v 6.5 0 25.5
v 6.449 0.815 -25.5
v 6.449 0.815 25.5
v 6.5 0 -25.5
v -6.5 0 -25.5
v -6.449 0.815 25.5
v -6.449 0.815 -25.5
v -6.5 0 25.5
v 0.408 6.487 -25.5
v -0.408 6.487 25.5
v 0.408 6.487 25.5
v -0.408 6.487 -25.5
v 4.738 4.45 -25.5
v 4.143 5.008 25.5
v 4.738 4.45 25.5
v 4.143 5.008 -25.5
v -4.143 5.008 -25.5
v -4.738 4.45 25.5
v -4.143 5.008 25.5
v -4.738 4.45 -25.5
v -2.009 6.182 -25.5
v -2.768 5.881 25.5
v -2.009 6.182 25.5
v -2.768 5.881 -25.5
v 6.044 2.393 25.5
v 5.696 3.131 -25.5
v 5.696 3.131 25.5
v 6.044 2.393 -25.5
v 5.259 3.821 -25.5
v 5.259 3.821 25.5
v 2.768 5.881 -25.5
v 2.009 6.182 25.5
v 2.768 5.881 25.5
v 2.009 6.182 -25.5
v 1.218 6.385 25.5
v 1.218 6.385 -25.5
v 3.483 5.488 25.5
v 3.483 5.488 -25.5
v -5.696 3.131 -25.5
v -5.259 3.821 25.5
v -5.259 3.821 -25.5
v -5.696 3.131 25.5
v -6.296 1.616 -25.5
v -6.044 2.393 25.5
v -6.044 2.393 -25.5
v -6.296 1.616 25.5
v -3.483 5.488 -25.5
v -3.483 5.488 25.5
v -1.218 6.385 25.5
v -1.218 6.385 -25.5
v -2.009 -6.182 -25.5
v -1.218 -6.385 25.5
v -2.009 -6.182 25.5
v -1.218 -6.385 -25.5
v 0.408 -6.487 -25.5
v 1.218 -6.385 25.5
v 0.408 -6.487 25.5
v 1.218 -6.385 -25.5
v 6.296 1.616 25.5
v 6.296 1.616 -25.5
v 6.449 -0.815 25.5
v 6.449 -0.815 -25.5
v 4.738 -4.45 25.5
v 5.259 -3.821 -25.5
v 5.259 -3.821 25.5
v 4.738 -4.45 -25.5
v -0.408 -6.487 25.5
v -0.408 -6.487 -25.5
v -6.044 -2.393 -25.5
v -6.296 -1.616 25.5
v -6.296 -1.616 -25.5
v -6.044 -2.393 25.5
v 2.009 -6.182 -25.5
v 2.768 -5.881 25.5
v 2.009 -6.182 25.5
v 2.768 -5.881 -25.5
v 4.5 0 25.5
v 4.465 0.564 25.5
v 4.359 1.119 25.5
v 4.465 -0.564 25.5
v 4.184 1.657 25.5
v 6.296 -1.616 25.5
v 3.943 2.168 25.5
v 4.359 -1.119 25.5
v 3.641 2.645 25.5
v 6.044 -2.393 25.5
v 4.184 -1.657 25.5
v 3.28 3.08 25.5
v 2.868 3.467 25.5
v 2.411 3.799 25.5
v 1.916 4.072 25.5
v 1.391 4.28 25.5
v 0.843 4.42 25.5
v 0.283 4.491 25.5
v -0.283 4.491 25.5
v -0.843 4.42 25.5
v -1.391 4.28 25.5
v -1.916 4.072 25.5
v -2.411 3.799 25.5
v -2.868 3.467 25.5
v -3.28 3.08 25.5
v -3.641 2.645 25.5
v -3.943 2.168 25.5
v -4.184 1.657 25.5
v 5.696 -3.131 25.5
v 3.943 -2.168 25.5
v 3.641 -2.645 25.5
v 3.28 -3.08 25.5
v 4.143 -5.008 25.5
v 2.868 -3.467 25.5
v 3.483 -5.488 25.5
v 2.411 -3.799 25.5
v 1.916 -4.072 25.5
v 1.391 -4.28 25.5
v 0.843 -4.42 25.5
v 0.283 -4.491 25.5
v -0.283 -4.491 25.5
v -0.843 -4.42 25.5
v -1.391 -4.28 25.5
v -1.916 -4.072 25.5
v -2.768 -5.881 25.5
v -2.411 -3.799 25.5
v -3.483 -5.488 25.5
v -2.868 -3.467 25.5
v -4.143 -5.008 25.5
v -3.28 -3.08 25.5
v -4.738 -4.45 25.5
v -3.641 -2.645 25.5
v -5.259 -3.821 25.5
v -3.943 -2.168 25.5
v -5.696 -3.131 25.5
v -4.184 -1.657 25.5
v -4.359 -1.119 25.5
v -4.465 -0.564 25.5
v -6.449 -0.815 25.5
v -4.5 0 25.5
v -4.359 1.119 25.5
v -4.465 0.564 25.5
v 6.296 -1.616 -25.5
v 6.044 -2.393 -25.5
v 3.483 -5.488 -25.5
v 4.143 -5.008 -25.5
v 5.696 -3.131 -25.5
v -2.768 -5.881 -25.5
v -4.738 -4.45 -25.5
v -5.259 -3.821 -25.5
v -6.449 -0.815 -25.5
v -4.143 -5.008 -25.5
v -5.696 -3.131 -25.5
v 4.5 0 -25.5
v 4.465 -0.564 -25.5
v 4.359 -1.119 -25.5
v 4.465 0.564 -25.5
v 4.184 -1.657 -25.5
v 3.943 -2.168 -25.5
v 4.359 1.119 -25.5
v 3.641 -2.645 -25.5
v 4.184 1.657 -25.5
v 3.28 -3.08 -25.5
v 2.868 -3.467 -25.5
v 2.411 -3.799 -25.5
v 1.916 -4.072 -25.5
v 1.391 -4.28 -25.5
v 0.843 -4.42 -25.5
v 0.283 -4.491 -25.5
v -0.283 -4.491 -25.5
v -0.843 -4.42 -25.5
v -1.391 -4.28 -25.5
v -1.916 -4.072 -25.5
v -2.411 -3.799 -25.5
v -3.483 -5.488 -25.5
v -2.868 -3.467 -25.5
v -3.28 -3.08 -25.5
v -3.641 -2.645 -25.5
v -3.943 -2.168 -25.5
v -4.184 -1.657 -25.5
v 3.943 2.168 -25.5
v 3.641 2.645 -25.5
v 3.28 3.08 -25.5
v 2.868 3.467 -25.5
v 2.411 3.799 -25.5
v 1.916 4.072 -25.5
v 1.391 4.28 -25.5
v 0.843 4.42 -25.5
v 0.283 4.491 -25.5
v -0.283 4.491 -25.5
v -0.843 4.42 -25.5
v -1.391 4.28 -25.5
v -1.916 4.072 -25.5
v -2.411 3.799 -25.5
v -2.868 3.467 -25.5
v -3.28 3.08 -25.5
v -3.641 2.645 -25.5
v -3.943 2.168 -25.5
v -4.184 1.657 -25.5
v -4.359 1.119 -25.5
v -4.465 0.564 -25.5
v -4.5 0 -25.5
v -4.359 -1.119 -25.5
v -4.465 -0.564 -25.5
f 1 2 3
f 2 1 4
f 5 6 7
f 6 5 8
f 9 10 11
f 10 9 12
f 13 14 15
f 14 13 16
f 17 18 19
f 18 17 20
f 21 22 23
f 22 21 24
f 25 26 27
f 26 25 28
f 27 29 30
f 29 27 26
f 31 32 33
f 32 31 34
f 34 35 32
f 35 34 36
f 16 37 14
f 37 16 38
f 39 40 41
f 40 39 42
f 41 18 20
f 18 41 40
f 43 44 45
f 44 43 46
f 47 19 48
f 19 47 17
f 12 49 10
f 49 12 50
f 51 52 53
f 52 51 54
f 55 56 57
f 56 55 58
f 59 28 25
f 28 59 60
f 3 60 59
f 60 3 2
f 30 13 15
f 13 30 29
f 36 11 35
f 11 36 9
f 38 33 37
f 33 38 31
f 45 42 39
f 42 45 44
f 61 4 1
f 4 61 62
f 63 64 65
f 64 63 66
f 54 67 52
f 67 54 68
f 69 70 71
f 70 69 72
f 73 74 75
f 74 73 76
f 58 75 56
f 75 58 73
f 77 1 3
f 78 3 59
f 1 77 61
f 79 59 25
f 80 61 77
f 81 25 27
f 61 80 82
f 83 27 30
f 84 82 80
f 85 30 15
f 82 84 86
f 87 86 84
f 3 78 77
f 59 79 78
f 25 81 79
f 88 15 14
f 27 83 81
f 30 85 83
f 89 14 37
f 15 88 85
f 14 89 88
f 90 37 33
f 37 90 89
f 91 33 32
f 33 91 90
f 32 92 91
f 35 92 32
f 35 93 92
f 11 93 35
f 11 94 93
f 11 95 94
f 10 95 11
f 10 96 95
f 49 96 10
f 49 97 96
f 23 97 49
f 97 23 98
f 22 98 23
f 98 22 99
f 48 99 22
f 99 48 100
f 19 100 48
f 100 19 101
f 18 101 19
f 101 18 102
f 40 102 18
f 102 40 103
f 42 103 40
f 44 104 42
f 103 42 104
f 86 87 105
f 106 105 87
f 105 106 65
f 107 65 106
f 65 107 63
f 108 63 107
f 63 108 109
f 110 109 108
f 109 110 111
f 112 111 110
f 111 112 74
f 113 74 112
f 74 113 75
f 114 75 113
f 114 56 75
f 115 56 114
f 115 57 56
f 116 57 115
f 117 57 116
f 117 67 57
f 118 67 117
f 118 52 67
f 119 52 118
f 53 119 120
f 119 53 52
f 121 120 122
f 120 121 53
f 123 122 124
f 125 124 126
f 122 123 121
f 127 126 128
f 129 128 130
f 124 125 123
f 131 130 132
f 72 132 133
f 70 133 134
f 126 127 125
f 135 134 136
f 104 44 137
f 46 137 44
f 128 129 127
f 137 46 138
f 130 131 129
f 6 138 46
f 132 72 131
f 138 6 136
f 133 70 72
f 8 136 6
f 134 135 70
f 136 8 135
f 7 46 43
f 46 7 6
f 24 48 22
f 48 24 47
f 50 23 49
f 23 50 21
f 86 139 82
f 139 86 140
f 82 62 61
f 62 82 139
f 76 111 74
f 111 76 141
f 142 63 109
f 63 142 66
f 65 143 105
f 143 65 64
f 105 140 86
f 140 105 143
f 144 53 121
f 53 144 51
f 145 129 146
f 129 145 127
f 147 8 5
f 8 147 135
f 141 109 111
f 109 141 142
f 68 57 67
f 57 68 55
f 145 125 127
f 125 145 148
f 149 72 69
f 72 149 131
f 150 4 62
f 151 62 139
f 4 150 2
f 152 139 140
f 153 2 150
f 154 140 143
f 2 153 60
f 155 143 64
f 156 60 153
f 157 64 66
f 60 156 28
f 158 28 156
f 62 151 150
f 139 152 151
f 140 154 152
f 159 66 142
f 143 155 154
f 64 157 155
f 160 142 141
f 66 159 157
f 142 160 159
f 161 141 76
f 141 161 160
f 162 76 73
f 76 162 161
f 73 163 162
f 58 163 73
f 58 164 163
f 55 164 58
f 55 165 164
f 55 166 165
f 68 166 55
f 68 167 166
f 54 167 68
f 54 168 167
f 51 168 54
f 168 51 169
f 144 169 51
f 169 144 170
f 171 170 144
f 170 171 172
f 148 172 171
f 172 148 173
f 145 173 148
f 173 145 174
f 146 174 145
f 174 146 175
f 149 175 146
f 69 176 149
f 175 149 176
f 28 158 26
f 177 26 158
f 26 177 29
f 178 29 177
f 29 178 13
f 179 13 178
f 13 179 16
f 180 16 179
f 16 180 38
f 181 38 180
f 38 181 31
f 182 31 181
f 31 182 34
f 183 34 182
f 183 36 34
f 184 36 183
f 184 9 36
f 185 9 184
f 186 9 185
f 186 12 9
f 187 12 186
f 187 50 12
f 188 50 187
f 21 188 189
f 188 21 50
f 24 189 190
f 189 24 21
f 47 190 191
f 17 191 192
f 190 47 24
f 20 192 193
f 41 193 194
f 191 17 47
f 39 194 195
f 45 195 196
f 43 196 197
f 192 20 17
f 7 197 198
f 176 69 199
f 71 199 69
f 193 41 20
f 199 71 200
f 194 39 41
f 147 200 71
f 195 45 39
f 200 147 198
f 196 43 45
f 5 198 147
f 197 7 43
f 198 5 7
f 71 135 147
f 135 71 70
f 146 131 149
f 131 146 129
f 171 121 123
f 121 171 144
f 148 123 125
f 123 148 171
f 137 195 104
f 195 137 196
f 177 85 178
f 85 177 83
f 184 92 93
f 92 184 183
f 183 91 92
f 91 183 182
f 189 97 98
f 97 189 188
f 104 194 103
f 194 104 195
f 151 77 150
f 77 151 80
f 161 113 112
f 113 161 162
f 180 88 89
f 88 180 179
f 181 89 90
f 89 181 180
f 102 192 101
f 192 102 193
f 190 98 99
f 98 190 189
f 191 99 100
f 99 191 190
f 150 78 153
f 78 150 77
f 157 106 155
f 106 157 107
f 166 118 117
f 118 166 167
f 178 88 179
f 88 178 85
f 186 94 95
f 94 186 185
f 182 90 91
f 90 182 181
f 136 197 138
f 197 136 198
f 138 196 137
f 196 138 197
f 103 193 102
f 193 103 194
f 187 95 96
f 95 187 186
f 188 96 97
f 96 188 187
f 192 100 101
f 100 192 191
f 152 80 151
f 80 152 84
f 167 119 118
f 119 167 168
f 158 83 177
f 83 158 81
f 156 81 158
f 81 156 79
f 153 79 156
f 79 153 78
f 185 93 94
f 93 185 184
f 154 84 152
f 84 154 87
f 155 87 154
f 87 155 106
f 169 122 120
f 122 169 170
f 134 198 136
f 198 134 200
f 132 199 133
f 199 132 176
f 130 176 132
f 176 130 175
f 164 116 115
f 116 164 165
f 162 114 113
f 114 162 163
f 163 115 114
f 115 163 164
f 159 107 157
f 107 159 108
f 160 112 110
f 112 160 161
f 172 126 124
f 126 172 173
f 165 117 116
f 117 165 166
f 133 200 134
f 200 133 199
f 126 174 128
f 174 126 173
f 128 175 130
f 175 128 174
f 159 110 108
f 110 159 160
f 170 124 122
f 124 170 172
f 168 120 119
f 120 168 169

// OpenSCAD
$fn = 50;


difference() {
	union() {
		translate(v = [0, 0, -25.5000000000]) {
			cylinder(h = 51, r = 6.5000000000);
		}
	}
	union() {
		translate(v = [0, 0, -100.0000000000]) {
			cylinder(h = 200, r = 4.5000000000);
		}
	}
}
